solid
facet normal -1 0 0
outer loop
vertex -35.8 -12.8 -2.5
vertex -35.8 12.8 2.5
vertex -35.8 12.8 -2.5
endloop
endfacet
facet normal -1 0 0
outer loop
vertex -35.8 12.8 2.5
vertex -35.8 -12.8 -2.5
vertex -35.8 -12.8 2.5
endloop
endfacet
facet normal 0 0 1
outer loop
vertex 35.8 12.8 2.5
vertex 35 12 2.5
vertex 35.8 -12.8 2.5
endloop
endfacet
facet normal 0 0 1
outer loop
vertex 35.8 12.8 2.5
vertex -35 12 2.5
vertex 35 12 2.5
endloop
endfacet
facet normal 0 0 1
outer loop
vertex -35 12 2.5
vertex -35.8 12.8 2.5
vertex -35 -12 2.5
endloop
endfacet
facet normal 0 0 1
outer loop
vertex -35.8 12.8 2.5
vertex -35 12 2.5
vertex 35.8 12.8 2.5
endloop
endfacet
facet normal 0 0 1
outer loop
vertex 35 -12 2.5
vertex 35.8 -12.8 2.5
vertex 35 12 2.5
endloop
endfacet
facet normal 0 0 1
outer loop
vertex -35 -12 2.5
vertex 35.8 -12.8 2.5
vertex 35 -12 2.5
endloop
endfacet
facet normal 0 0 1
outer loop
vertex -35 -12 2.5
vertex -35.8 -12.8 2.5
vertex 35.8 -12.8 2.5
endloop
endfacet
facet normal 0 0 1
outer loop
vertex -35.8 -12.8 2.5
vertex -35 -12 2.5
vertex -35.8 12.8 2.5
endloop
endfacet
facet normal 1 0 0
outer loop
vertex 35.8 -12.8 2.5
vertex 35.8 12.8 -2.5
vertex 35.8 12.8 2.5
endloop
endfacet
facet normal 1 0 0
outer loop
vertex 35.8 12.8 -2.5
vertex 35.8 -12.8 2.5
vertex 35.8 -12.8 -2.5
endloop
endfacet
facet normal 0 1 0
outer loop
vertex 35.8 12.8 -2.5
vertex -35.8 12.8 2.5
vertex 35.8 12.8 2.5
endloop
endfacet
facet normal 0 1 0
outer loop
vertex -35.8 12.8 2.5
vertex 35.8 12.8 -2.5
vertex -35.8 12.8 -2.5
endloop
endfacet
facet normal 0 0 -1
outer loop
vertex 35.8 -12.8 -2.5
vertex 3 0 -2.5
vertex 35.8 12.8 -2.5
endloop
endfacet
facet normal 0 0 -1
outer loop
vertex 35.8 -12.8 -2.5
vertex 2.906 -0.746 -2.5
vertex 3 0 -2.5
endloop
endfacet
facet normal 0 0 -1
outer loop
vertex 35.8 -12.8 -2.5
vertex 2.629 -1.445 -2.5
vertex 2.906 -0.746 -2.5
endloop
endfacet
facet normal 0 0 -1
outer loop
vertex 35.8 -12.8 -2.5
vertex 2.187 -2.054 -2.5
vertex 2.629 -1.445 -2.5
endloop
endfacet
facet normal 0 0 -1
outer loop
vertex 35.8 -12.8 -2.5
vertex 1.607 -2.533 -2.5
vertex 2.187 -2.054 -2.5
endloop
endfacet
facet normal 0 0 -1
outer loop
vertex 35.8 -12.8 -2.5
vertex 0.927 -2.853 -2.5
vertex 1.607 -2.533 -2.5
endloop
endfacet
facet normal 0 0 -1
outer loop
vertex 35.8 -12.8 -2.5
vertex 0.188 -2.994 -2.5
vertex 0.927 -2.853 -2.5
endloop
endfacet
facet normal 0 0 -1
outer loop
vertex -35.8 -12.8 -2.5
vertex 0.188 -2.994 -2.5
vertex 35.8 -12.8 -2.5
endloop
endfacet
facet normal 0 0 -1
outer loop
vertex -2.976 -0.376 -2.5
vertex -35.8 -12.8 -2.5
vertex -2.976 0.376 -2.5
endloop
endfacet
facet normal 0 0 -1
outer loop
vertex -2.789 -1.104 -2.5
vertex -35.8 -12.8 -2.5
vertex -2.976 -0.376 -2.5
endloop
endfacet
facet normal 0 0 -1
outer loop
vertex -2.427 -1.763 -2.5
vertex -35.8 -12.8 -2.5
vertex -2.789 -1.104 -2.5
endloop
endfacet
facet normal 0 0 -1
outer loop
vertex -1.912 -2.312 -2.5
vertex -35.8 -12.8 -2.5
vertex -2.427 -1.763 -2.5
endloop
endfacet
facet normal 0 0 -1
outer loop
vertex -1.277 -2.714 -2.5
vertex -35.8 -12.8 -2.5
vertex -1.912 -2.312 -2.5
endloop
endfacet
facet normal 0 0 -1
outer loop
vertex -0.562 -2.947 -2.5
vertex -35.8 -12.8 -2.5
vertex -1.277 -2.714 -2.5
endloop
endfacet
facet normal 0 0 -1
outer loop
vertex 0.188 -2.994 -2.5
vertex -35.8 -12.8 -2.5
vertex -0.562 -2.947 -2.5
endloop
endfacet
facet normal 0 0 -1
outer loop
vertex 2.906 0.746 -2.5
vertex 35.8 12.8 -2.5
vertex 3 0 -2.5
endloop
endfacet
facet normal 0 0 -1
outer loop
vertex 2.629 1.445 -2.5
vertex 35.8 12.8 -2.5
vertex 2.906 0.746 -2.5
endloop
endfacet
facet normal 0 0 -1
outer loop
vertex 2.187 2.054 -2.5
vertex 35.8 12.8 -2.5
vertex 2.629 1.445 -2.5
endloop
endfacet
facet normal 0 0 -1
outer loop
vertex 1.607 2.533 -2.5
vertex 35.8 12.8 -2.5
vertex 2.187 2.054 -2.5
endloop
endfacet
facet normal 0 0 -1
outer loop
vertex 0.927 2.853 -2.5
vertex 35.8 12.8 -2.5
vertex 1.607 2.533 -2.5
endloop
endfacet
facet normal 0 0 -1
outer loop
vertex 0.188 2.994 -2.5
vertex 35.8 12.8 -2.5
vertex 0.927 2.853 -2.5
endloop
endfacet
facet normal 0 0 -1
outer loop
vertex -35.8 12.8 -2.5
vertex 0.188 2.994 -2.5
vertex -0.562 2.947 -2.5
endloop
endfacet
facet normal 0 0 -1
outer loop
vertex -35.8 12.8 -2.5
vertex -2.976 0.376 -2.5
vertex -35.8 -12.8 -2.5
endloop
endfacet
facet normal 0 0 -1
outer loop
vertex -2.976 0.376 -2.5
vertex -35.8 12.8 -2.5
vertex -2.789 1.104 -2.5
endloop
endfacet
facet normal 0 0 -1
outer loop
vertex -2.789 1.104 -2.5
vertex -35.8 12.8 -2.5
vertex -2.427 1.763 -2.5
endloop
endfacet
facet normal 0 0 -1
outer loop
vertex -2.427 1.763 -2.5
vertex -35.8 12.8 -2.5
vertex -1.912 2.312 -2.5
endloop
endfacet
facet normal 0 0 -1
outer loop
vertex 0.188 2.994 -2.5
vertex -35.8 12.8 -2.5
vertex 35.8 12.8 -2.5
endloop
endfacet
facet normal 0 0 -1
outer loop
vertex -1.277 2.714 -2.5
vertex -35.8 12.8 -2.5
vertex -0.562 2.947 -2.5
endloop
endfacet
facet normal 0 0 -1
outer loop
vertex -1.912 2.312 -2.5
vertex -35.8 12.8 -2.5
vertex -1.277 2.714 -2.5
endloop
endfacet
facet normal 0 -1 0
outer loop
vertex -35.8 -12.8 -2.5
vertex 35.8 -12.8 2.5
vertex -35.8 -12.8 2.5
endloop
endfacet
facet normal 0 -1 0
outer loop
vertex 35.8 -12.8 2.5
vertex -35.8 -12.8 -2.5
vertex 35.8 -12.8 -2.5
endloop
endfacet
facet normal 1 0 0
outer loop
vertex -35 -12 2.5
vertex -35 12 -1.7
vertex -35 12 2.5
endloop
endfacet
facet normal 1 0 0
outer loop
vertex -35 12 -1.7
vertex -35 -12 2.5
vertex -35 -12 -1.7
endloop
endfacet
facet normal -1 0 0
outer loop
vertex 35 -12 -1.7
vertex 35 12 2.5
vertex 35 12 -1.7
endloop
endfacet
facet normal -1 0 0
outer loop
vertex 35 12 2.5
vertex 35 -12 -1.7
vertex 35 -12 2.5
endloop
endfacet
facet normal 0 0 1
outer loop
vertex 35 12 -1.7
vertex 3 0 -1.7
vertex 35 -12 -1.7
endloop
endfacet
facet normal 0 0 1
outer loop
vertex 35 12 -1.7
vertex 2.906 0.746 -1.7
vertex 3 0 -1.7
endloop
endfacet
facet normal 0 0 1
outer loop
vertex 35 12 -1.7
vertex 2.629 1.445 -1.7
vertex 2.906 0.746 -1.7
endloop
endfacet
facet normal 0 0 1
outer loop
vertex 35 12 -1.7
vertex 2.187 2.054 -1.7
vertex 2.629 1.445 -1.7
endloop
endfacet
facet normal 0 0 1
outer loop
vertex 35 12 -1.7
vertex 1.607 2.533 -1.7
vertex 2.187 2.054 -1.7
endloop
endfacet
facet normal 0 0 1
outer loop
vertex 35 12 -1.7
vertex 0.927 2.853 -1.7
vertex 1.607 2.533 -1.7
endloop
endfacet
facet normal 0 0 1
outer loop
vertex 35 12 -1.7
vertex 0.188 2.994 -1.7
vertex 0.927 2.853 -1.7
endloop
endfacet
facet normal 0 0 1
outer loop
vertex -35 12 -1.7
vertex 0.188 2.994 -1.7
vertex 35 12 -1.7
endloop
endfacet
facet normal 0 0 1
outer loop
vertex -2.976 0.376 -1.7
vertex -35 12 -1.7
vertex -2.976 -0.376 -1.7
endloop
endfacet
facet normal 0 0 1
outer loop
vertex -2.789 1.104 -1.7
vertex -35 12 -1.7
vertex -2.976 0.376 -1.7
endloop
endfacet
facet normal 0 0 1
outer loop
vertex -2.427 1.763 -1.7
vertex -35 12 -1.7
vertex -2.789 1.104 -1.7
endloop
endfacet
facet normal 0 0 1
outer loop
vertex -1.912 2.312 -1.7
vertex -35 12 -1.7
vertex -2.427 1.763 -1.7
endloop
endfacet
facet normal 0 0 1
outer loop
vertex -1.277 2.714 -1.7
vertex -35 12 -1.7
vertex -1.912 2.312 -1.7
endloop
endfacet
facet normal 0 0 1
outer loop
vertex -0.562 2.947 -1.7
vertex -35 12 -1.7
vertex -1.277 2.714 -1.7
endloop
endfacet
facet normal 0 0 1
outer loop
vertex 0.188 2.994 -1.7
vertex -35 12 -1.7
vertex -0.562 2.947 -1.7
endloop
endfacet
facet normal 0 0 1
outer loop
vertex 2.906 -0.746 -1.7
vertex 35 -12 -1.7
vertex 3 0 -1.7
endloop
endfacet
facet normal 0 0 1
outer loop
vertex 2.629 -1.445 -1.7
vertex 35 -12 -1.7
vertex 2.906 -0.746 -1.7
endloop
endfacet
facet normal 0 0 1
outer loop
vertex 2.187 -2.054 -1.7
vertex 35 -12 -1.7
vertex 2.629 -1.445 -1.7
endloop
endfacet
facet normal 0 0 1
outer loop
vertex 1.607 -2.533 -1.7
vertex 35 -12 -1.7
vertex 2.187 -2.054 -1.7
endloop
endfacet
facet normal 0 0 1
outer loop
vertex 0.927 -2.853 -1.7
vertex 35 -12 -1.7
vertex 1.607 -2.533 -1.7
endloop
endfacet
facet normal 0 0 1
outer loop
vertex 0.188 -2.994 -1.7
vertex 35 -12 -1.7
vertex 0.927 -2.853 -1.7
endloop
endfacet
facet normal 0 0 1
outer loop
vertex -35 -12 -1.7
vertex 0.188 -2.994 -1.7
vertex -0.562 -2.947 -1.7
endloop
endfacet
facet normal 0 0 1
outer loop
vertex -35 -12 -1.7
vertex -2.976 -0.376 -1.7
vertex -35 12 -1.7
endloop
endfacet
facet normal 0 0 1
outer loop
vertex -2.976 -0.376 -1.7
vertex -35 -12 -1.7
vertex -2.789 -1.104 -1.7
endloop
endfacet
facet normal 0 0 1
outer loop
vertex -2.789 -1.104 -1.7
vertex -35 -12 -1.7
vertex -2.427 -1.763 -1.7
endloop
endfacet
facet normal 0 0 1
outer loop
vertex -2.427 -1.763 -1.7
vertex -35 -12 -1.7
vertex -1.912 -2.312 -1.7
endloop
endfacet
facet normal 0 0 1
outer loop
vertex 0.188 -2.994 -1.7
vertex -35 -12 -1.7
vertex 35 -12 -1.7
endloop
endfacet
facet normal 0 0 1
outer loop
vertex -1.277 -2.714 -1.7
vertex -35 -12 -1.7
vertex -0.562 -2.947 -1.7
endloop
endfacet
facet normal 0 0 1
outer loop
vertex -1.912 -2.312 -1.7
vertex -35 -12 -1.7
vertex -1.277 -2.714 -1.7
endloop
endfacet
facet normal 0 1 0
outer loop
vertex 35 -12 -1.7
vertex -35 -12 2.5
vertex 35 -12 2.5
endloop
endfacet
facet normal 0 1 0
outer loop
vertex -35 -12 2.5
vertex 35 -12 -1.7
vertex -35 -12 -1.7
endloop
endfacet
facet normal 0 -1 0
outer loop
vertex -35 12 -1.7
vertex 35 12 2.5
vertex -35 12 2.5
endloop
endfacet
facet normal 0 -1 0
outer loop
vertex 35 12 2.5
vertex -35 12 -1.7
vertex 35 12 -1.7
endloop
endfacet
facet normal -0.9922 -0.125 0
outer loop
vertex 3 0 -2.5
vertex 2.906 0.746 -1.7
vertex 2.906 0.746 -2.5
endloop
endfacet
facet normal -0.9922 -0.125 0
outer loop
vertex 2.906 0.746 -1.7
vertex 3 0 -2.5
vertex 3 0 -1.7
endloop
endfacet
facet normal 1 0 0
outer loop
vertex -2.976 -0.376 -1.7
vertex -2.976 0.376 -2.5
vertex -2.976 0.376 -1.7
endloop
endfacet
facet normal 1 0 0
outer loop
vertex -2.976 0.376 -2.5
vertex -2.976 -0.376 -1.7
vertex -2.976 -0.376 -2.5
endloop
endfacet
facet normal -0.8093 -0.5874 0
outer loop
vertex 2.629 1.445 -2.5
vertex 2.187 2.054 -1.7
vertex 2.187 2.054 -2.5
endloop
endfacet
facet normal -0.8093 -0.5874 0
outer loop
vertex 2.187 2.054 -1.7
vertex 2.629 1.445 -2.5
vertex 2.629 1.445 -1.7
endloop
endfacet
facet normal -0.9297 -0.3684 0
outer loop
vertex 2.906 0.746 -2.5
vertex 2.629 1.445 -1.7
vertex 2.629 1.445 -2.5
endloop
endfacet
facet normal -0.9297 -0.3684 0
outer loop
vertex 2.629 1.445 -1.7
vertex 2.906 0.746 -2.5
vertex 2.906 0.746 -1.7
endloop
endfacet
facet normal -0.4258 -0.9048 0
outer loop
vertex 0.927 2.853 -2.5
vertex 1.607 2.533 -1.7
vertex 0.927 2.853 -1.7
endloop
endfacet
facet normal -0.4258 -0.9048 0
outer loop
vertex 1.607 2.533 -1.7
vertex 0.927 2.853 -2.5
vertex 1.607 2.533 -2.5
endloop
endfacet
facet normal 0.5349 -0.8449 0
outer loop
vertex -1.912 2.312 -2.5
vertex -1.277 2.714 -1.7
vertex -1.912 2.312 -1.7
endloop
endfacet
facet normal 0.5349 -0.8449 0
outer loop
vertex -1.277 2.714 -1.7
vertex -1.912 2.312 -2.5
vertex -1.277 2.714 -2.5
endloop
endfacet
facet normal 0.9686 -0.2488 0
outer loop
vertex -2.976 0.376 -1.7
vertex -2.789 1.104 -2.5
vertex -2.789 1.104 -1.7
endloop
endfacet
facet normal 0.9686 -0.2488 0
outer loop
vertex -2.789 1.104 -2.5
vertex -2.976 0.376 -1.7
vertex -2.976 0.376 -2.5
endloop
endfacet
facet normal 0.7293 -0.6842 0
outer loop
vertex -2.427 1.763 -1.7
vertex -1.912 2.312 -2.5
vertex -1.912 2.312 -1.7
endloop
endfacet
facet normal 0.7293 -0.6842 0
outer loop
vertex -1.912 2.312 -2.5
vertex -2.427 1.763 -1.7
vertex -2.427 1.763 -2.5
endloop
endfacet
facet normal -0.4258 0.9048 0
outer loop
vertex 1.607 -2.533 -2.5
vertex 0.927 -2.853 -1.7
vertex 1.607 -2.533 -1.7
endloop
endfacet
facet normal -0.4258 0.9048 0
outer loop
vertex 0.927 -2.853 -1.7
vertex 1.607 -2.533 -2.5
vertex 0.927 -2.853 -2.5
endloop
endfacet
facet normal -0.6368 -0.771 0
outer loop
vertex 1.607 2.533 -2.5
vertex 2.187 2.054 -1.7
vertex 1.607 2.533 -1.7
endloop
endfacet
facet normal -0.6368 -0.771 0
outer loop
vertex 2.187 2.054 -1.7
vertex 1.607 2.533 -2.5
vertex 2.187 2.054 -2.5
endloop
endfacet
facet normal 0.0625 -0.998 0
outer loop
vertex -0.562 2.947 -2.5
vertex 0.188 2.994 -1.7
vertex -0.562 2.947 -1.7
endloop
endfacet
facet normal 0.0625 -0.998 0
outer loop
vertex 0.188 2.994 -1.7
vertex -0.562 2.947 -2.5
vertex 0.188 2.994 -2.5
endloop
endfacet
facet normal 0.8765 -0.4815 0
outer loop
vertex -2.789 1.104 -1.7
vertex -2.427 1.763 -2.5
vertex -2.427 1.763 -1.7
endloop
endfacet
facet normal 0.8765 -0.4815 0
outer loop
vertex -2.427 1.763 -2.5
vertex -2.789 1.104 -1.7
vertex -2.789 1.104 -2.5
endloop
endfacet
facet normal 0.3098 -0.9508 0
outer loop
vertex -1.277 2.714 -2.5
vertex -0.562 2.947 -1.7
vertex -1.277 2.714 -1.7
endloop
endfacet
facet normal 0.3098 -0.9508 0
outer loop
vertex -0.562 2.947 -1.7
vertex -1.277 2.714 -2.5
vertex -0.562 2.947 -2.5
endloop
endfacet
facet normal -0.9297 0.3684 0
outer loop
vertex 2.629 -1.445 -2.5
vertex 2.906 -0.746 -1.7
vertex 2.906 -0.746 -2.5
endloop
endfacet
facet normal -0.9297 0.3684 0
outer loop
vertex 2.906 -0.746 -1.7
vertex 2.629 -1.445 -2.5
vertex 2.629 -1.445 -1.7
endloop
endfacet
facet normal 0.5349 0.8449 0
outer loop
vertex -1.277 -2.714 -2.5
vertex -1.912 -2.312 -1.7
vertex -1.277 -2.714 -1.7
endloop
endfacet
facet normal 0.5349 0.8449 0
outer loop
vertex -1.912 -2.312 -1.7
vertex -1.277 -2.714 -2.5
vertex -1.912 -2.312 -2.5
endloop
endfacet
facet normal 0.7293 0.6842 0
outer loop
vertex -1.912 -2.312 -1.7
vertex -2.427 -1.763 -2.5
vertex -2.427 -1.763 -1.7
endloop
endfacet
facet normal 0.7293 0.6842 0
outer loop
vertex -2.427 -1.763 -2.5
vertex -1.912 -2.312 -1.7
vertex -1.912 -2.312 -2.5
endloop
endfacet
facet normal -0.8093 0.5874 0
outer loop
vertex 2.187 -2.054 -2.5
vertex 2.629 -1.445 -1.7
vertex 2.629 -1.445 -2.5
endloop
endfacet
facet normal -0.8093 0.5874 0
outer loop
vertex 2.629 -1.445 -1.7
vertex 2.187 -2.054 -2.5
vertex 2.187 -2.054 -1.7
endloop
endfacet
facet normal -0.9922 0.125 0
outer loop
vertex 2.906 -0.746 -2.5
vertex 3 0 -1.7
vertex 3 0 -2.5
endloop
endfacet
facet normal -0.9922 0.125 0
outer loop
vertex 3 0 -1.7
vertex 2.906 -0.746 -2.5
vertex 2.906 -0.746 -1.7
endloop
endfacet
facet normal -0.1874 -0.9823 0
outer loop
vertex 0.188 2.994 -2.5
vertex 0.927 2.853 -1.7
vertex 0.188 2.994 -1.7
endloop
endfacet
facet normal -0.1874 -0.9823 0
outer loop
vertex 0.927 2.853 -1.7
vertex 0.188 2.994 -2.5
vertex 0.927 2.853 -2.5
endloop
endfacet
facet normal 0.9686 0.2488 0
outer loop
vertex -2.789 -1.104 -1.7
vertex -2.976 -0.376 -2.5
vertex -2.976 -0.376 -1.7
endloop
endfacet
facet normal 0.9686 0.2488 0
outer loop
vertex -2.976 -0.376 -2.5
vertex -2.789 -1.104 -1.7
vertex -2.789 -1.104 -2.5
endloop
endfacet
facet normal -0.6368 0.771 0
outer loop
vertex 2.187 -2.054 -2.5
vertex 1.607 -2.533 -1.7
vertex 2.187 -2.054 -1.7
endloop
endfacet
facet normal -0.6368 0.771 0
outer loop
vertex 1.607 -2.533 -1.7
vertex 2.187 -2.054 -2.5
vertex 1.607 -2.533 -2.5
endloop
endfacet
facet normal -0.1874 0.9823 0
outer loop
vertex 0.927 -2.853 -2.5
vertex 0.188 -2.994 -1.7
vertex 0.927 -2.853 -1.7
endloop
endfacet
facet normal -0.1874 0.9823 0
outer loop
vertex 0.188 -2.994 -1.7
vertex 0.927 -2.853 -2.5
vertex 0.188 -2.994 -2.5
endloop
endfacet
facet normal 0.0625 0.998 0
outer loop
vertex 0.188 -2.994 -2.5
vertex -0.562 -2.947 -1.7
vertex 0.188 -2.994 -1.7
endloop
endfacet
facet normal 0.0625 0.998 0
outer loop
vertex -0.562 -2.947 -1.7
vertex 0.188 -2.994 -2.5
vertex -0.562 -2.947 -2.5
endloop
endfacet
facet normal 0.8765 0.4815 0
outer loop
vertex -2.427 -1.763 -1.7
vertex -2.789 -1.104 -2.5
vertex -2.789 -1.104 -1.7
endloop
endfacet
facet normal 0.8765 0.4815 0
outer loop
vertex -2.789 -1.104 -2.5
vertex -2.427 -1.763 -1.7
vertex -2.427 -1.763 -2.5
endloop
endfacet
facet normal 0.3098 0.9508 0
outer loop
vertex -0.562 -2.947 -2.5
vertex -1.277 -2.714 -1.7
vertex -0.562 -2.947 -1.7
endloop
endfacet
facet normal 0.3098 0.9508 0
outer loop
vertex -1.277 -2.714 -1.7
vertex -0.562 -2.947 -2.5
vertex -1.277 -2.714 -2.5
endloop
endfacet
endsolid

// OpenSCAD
width = 70;
length = 24;
height = 5;

thick = 0.8;

diameter = 6;

difference()
{
    cube([width + thick * 2, length + thick * 2, height], center=true);
    translate([0, 0, thick])
    cube([width, length, height], center=true);
    
    cylinder(d=diameter, h=1.1 * height, center=true, $fn=25);
}
